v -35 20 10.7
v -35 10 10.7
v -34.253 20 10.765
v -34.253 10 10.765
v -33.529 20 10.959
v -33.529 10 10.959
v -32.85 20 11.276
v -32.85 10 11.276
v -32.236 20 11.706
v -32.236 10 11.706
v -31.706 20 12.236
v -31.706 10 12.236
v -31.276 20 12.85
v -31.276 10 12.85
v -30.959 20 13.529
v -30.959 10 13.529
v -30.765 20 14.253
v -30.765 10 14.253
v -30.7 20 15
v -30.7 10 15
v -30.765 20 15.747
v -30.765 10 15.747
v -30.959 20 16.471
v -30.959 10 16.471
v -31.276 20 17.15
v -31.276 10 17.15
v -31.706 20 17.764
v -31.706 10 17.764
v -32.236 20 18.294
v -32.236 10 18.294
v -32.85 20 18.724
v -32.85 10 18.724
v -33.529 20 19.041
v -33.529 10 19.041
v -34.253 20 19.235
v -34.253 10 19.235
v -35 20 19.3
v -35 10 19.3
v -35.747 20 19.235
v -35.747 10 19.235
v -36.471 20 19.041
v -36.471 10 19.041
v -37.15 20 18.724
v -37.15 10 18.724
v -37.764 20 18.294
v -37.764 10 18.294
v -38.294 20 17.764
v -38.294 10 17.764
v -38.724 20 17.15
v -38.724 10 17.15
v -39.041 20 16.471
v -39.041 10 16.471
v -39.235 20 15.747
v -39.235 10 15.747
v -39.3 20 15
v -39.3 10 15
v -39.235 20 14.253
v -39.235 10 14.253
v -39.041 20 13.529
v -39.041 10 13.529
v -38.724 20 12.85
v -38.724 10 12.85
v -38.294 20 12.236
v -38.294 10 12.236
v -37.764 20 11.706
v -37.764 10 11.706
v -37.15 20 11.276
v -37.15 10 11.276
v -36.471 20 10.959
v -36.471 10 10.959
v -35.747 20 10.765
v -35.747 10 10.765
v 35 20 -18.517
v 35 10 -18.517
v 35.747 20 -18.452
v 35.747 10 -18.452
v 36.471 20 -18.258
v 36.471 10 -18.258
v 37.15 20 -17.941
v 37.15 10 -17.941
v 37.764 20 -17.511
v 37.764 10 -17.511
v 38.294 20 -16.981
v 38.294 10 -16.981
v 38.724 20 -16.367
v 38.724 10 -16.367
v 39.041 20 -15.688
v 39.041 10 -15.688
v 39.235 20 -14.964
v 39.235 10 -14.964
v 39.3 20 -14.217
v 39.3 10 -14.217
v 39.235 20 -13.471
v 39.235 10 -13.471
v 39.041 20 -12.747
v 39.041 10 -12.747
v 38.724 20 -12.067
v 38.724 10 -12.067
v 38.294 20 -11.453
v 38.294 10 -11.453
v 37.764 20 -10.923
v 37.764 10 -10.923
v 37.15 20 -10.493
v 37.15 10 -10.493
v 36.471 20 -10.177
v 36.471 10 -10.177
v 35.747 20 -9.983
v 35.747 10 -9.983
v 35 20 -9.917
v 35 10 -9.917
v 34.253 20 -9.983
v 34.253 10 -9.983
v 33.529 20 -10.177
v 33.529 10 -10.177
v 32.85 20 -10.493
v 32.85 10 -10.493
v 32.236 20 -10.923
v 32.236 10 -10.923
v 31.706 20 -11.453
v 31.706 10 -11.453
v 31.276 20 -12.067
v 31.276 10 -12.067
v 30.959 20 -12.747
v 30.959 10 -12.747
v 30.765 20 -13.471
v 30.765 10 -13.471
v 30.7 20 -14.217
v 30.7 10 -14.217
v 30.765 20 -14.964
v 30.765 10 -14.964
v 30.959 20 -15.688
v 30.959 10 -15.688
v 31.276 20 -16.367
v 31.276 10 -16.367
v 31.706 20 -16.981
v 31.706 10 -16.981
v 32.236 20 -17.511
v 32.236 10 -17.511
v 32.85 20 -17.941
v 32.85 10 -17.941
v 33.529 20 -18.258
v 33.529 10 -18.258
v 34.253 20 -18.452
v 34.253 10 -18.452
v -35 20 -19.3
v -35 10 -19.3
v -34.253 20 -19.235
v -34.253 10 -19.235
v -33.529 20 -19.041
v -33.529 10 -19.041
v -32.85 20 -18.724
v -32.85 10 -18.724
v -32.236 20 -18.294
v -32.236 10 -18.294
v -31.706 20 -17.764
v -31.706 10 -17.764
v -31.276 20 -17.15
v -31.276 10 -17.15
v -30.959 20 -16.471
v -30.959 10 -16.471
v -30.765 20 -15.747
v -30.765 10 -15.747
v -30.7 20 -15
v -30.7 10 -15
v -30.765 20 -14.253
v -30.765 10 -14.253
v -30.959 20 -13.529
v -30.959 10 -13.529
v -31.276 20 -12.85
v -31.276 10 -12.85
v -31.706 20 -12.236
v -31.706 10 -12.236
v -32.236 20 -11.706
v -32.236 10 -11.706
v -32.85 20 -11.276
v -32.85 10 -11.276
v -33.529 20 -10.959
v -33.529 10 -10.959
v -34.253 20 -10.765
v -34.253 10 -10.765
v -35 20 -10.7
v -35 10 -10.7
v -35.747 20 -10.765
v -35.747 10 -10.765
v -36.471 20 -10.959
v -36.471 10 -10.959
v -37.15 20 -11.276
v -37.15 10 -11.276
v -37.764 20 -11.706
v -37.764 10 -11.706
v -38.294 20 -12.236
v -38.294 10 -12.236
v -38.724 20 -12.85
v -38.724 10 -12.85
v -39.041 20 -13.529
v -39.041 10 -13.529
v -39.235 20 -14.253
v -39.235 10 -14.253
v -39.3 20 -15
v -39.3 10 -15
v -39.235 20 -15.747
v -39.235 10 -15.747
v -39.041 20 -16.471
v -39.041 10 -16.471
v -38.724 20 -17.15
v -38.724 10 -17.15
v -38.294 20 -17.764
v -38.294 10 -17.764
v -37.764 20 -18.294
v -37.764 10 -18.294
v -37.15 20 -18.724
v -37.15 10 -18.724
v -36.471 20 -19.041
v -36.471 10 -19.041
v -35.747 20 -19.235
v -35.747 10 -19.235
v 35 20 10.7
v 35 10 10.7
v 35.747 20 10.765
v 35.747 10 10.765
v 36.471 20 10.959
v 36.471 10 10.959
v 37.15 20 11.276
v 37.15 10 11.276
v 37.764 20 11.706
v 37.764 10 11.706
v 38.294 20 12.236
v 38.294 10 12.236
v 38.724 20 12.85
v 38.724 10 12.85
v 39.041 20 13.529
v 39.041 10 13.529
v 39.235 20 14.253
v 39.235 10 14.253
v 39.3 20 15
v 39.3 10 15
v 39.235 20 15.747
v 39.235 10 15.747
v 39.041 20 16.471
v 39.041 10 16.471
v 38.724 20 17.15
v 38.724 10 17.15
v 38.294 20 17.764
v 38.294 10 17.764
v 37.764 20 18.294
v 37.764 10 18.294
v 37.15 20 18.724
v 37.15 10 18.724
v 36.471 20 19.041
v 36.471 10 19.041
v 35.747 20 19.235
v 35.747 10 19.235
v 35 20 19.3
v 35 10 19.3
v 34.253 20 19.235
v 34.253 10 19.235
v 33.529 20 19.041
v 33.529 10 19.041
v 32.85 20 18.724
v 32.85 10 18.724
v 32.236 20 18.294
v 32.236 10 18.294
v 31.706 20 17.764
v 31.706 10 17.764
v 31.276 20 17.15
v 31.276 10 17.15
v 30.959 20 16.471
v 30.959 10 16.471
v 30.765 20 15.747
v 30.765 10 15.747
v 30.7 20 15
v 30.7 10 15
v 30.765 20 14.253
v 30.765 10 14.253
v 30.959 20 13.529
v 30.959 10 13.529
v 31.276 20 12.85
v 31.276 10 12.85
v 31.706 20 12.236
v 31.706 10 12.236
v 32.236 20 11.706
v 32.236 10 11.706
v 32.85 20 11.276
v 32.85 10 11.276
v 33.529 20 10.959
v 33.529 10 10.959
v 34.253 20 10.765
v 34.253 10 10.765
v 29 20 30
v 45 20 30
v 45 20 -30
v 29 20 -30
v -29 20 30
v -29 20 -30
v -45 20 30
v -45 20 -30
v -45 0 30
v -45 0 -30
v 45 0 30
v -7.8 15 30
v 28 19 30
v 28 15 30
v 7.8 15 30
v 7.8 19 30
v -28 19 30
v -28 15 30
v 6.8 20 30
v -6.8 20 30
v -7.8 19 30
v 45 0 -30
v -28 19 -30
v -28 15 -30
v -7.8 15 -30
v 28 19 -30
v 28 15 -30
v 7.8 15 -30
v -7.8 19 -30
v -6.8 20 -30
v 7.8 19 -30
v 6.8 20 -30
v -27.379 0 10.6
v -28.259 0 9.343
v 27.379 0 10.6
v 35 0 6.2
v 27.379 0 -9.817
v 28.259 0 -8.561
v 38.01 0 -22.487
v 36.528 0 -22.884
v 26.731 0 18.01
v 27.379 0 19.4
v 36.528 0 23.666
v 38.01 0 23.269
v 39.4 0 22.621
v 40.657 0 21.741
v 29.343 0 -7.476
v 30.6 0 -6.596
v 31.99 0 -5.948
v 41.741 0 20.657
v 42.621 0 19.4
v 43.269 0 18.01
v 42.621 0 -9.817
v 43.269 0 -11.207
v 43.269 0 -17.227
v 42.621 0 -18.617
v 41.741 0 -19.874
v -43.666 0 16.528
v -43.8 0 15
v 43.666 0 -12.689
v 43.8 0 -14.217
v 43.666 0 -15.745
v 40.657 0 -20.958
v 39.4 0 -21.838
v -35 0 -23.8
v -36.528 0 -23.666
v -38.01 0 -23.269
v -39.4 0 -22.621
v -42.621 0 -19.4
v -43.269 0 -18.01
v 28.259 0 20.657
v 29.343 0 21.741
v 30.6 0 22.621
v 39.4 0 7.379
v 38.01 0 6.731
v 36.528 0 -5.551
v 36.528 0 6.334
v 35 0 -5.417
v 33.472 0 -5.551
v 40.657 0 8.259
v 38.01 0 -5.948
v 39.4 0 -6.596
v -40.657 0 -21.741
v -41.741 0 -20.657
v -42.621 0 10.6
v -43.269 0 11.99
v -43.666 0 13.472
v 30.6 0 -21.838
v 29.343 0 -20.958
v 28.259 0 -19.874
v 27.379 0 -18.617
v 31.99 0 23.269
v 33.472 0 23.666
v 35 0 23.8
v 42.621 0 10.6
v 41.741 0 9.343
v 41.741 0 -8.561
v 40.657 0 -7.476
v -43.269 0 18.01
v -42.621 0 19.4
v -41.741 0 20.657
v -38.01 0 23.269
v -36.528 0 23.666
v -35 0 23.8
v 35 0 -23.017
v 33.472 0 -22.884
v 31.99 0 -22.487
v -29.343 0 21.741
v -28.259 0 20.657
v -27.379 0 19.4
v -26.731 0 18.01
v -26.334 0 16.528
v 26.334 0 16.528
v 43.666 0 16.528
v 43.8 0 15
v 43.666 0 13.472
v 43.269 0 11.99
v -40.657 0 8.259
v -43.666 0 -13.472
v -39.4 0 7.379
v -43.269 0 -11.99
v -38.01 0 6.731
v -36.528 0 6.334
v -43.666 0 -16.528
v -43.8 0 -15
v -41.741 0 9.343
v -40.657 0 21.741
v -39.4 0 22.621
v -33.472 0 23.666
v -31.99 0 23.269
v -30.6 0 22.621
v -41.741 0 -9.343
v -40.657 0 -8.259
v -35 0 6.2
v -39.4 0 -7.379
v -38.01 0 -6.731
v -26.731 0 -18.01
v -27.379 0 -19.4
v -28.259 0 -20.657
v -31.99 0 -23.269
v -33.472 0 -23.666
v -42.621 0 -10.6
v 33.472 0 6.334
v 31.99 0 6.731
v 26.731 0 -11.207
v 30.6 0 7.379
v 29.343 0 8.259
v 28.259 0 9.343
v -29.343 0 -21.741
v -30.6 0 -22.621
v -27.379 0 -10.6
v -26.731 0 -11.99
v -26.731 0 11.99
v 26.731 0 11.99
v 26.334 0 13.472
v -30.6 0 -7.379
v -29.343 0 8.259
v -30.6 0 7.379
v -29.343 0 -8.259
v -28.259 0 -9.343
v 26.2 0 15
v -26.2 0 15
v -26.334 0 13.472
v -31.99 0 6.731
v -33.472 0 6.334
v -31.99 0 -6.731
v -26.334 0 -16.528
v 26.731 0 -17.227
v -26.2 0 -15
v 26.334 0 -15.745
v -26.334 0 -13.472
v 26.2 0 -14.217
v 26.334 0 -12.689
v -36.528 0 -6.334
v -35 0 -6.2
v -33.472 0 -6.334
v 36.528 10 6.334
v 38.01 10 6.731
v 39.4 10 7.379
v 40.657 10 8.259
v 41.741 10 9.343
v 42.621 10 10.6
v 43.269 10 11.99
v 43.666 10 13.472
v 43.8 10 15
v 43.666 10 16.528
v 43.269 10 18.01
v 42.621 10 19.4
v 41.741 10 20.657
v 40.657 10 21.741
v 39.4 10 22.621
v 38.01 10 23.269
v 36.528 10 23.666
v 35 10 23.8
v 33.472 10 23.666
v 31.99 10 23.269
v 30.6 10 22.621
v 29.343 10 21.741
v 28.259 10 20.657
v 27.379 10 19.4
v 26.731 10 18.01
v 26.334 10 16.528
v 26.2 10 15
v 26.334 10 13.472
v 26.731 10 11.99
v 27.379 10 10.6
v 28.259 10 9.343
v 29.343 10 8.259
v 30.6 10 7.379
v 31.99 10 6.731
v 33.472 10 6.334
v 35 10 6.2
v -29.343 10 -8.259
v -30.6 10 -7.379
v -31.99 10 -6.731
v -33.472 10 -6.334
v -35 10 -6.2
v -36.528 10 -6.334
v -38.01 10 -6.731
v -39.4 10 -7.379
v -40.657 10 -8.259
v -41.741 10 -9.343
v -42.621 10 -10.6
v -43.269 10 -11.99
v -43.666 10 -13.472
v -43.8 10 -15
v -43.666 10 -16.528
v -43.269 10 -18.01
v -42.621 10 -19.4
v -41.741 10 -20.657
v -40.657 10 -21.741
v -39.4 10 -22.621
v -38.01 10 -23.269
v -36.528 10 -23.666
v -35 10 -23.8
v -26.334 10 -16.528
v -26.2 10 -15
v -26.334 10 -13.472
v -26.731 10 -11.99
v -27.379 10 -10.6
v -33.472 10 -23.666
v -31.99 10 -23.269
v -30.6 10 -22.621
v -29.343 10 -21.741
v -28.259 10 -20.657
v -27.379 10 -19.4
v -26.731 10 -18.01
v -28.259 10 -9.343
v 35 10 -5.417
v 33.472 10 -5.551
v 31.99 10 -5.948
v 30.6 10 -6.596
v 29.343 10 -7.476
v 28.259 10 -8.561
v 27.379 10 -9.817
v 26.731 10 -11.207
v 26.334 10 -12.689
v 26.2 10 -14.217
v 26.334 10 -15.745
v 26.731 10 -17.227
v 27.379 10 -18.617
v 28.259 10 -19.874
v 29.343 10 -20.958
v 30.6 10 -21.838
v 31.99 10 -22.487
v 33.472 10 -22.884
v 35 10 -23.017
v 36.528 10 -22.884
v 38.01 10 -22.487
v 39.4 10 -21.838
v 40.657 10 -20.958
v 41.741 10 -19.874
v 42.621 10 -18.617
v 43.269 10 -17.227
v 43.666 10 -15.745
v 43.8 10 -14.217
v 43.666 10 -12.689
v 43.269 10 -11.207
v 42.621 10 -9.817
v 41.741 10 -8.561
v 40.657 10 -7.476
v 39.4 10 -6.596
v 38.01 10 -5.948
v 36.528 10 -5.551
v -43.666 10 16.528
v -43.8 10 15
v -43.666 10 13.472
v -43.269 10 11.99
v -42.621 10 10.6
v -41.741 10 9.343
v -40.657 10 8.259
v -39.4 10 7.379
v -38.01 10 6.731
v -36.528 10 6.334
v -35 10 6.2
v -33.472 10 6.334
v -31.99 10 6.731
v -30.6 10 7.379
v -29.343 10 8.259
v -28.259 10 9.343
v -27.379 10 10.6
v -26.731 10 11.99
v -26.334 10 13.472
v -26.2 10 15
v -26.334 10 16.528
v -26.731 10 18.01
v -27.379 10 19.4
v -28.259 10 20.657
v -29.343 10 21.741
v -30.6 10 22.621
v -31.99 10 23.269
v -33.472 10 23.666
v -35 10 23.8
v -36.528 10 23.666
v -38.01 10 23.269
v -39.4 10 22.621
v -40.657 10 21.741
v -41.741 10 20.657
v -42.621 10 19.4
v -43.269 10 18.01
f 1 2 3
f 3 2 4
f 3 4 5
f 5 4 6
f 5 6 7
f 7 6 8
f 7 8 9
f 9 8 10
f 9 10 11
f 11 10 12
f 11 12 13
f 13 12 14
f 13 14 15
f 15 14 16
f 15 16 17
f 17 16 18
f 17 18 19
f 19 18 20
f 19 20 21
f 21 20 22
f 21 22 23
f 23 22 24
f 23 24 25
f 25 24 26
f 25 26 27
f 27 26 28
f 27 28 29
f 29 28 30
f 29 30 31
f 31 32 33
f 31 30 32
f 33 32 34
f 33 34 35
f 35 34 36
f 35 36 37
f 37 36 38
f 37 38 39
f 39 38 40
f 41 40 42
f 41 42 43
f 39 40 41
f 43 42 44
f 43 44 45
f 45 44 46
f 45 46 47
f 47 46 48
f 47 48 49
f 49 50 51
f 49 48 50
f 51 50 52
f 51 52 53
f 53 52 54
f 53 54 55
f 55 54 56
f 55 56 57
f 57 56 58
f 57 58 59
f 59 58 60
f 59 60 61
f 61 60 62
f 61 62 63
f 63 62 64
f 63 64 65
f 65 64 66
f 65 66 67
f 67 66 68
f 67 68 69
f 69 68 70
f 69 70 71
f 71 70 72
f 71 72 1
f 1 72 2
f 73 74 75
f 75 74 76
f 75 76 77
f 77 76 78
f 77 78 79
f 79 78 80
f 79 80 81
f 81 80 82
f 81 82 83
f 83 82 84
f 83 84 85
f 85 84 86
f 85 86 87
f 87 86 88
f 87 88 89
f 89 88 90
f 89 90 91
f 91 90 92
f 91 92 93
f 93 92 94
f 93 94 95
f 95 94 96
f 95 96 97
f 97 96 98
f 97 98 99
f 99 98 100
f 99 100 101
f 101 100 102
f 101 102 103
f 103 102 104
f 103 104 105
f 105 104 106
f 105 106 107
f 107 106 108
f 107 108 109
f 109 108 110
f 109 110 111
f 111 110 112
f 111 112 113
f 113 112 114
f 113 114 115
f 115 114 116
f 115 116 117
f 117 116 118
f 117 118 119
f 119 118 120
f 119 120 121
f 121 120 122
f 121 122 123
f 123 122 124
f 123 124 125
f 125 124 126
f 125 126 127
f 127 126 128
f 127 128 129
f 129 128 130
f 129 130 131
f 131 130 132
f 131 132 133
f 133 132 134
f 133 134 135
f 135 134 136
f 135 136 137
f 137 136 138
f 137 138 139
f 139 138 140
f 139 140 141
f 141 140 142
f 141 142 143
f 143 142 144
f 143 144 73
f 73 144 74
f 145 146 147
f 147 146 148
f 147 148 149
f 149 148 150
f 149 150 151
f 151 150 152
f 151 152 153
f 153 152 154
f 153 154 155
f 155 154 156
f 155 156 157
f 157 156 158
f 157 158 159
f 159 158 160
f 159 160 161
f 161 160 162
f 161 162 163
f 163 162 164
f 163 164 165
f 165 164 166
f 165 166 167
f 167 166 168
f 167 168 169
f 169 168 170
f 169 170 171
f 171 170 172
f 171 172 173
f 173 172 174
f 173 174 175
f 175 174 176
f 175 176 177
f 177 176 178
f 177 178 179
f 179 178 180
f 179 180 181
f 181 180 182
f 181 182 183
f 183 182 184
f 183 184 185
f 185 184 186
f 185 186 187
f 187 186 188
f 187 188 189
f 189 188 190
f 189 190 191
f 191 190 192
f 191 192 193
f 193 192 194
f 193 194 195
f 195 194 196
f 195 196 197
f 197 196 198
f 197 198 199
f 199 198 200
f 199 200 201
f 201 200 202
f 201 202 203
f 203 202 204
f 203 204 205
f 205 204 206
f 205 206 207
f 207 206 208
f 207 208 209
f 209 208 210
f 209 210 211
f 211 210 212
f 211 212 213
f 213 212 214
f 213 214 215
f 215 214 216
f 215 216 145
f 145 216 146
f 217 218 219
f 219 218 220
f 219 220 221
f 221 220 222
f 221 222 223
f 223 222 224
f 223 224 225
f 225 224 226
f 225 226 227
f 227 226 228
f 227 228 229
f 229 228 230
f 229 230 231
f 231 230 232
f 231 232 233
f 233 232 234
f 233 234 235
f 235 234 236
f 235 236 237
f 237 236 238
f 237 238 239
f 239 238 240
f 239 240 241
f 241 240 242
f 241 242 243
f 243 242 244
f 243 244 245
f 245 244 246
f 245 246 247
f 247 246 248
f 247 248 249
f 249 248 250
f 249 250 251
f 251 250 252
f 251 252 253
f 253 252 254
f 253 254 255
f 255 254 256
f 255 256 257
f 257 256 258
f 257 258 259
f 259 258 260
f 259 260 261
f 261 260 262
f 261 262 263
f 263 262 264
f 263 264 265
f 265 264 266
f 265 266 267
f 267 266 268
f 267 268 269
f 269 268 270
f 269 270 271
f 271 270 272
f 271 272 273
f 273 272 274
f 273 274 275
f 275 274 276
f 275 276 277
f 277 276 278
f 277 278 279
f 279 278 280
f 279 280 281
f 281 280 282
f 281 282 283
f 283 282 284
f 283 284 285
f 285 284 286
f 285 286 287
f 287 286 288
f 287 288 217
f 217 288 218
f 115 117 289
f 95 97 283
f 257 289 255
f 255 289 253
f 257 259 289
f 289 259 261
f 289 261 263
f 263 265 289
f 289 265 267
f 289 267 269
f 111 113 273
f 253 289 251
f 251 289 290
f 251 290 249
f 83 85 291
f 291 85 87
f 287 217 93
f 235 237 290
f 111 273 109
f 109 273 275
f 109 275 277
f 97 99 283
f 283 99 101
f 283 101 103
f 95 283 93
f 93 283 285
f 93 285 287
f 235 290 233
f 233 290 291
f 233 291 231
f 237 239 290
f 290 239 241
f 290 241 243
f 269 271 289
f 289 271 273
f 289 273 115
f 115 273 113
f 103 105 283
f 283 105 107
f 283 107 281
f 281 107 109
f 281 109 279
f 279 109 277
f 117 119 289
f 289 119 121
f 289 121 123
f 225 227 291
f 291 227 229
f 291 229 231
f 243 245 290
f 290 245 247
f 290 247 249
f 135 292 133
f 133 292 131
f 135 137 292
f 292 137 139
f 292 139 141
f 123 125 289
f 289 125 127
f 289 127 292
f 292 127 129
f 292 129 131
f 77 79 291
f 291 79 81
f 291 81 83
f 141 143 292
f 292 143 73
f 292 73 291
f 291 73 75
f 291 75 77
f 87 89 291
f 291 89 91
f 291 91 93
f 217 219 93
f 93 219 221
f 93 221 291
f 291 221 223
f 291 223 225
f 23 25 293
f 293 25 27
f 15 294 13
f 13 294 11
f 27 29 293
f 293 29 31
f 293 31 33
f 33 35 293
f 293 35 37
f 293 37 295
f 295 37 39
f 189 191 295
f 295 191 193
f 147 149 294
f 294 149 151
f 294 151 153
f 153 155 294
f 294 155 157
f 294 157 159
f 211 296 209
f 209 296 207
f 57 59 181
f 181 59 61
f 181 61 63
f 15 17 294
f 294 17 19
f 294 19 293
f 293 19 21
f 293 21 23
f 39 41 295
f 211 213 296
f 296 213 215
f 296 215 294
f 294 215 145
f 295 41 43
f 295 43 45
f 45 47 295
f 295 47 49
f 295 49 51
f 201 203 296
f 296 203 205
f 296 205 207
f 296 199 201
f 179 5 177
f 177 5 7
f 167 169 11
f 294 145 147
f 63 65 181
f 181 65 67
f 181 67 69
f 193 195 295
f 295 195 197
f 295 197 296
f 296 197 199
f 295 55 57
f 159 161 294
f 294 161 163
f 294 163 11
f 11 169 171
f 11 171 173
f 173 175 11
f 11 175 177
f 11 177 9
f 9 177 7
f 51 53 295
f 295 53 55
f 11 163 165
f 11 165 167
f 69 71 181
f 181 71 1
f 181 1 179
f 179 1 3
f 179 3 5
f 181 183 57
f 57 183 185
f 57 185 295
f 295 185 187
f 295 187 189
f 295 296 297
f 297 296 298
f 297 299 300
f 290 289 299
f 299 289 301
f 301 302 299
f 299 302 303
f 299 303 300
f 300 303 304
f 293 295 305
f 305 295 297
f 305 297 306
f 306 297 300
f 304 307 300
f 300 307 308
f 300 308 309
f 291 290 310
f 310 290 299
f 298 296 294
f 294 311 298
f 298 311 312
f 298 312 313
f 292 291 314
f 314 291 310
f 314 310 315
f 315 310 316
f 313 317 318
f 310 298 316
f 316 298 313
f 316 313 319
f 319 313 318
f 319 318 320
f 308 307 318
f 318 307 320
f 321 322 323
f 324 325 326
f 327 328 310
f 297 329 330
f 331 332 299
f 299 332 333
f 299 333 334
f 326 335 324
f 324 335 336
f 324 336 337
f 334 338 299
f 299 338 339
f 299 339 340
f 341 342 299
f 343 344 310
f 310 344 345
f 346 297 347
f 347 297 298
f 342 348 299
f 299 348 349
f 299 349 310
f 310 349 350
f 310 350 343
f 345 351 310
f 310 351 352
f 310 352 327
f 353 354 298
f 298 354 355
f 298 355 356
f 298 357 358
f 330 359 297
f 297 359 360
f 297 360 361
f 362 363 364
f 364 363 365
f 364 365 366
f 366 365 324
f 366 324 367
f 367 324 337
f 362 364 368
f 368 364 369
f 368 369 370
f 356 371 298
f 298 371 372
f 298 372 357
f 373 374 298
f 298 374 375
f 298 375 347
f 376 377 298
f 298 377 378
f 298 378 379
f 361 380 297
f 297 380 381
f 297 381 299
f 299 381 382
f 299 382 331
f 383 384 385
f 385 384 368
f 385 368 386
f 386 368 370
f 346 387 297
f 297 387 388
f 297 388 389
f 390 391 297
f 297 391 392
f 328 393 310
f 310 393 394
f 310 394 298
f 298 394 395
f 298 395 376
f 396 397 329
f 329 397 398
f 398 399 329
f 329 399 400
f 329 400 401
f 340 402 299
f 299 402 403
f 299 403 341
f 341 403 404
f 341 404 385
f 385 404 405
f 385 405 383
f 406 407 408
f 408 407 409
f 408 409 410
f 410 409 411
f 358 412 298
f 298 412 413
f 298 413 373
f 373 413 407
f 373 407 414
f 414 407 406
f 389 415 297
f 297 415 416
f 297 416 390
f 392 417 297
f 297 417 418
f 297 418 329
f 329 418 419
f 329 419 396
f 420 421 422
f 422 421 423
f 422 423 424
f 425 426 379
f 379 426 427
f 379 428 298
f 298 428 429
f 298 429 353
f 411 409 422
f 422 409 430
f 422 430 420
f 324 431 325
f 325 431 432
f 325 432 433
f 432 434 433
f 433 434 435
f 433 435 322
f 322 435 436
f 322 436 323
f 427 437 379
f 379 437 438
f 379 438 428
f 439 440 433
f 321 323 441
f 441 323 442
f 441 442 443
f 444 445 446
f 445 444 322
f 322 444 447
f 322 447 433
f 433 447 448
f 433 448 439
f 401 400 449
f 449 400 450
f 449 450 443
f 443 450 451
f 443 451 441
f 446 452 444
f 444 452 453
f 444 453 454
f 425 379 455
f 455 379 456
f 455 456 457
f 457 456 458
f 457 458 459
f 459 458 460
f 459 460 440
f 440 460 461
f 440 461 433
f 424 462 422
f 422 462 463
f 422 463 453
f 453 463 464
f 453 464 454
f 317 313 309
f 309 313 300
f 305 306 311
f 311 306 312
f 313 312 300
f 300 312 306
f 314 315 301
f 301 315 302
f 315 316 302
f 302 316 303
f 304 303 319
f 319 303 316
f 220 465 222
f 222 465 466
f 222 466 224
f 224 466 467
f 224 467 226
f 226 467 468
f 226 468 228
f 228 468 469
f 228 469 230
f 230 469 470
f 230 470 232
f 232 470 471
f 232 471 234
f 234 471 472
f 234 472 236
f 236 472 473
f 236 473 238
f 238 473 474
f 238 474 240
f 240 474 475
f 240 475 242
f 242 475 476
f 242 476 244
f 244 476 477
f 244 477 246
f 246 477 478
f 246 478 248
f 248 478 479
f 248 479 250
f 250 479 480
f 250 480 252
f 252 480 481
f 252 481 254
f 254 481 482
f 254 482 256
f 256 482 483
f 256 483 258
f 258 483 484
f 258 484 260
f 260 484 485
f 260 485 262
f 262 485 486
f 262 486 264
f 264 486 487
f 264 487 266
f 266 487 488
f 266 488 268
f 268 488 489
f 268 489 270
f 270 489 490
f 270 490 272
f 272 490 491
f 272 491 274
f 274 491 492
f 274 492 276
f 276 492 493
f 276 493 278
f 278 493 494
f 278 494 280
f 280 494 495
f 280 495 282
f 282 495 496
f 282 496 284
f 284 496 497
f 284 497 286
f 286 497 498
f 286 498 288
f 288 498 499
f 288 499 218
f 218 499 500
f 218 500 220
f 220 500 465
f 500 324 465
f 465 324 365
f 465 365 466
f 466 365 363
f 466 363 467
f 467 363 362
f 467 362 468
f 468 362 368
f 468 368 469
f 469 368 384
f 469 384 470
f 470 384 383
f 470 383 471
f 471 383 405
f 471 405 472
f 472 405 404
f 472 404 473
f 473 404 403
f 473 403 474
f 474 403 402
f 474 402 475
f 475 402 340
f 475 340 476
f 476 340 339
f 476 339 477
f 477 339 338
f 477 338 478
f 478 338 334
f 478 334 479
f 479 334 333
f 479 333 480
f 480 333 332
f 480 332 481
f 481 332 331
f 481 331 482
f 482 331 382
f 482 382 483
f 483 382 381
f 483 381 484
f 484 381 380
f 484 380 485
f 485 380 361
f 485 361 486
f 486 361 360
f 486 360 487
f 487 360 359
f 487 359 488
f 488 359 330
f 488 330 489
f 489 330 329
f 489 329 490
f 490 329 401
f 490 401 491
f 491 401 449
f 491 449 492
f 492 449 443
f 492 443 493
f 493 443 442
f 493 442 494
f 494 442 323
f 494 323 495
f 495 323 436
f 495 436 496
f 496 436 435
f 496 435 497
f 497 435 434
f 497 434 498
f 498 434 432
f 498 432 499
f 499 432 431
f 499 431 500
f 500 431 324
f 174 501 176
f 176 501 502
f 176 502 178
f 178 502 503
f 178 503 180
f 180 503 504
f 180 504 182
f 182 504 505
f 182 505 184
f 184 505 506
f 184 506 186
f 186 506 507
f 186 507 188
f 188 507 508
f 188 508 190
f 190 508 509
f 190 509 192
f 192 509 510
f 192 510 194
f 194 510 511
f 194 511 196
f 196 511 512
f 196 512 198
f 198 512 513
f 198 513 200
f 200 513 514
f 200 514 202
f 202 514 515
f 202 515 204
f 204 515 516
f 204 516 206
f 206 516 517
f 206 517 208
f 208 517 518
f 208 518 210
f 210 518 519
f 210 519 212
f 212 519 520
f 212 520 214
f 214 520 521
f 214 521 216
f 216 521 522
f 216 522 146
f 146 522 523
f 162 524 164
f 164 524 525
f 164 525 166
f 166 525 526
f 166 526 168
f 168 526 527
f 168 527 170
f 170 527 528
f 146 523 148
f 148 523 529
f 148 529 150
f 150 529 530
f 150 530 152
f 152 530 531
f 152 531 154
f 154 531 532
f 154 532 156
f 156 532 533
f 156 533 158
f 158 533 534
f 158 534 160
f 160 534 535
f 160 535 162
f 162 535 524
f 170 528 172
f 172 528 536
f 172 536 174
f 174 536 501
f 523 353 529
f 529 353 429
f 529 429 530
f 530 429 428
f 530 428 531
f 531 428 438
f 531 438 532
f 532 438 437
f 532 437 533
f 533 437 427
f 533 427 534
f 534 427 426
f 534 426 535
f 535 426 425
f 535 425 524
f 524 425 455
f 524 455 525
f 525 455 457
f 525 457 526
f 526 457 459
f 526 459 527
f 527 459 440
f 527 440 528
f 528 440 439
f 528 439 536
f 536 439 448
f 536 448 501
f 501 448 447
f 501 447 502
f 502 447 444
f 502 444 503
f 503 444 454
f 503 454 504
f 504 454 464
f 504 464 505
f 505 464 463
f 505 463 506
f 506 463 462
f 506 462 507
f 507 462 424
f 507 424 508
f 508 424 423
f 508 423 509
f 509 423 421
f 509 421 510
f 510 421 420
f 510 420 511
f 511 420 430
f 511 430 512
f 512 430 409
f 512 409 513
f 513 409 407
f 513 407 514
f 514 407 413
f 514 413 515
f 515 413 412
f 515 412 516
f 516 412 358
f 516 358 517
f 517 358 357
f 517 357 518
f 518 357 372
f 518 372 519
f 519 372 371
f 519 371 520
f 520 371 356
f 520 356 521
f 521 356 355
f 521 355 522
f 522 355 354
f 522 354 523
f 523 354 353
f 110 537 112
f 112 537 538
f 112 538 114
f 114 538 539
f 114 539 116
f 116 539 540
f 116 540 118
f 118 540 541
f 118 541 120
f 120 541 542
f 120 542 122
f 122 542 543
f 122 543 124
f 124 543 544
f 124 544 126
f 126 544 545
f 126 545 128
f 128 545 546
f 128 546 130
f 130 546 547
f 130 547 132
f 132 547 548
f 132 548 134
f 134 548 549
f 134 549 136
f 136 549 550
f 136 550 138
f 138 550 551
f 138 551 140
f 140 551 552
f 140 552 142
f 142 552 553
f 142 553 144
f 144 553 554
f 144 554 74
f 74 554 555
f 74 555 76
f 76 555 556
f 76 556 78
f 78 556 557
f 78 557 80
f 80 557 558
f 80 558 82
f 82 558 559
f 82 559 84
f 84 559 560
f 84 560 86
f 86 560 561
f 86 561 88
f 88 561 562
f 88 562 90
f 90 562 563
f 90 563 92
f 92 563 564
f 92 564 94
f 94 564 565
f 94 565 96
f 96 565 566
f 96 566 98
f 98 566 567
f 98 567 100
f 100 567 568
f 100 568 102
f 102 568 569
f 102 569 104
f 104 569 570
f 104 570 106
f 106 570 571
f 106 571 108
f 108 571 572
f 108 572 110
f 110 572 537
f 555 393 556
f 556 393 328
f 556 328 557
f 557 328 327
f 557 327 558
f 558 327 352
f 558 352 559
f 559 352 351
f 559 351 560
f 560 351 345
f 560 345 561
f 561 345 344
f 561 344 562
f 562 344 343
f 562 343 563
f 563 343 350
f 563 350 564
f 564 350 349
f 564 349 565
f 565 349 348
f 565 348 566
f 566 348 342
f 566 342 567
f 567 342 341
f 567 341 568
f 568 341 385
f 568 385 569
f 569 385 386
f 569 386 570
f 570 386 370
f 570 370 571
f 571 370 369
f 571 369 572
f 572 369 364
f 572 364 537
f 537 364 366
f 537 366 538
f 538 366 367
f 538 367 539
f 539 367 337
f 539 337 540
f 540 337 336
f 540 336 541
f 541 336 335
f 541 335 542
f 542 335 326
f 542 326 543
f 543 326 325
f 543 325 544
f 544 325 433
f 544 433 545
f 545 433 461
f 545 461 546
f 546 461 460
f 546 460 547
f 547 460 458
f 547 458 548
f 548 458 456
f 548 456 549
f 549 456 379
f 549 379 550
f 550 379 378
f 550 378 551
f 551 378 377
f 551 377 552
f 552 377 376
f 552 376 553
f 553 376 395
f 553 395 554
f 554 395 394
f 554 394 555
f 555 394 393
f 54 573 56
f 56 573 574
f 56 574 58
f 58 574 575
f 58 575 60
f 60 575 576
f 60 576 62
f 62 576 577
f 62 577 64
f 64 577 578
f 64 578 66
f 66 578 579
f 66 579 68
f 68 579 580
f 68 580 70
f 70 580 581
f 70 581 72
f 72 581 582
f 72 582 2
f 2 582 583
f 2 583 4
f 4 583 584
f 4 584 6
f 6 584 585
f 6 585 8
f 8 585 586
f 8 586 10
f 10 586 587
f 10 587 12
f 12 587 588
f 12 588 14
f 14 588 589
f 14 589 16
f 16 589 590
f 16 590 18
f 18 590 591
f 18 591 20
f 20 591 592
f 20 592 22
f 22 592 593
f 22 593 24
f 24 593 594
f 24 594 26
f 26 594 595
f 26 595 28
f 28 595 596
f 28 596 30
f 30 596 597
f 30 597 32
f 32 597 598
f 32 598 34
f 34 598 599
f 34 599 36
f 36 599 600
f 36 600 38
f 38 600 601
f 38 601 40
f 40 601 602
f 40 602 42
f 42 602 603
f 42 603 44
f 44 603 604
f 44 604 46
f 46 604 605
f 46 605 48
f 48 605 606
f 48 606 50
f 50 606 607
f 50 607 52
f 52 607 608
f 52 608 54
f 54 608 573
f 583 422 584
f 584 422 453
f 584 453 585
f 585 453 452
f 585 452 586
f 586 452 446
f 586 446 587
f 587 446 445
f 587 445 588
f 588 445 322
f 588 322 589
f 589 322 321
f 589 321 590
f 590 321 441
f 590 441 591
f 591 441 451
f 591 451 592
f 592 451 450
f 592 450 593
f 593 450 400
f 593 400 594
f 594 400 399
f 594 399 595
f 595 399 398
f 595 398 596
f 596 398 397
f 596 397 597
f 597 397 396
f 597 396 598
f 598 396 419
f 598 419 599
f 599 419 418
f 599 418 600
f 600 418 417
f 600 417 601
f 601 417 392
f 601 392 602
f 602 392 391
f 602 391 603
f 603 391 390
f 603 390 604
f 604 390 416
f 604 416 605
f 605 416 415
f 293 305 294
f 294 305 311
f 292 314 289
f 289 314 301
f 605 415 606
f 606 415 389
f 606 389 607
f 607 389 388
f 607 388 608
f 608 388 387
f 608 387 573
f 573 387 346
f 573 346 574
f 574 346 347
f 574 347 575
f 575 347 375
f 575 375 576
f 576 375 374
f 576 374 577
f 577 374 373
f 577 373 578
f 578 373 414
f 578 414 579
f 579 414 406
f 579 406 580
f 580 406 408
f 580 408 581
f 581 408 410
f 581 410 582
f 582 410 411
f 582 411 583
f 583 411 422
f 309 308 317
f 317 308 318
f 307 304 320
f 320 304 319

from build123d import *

# Parameters (mm, degrees)
SKETCH1_W           = 90
SKETCH1_H           = 60
BOSS_EXTRUDE1_DEPTH = 20
CUT_EXTRUDE1_DEPTH  = 61
SKETCH3_R           = 4.3
CUT_EXTRUDE2_DEPTH  = 21
SKETCH4_R           = 8.8
CUT_EXTRUDE3_DEPTH  = 10
CHAMFER1_SIZE       = 1


with BuildPart() as part:
    # Sketch1 → Boss-Extrude1 (new body)
    with BuildSketch(Plane(origin=(0, 0, 0), x_dir=(1, 0, 0), z_dir=(0, 1, 0))):
        Rectangle(SKETCH1_W, SKETCH1_H)
    extrude(amount=BOSS_EXTRUDE1_DEPTH)

    # Sketch2 → Cut-Extrude1 (cut, through all)
    with BuildSketch(Plane.XY.offset(30)):
        Polygon((28, 25), (-28, 25), (-28, 15), (-7.8, 15), (-7.8, 20), (7.8, 20), (7.8, 15), (28, 15), align=None)
    extrude(amount=-CUT_EXTRUDE1_DEPTH, mode=Mode.SUBTRACT)

    # Sketch3 → Cut-Extrude2 (cut, through all)
    with BuildSketch(Plane.XZ):
        with Locations((-35, 15)):
            Circle(SKETCH3_R)
        with Locations((-35, -15)):
            Circle(SKETCH3_R)
        with Locations((35, -14.217273236)):
            Circle(SKETCH3_R)
        with Locations((35, 15)):
            Circle(SKETCH3_R)
    extrude(amount=-CUT_EXTRUDE2_DEPTH, mode=Mode.SUBTRACT)

    # Sketch4 → Cut-Extrude3 (cut)
    with BuildSketch(Plane.XZ):
        with Locations((35, 15)):
            Circle(SKETCH4_R)
        with Locations((35, -14.217273236)):
            Circle(SKETCH4_R)
        with Locations((-35, 15)):
            Circle(SKETCH4_R)
        with Locations((-35, -15)):
            Circle(SKETCH4_R)
    extrude(amount=-CUT_EXTRUDE3_DEPTH, mode=Mode.SUBTRACT)

    # Chamfer1
    chamfer1_edges = [part.edges().sort_by_distance(p)[0] for p in [
        (28, 20, 0),
        (-28, 20, 0),
        (7.8, 20, 0),
        (-7.8, 20, 0),
    ]]
    chamfer(chamfer1_edges, length=CHAMFER1_SIZE)


solid = part.part
